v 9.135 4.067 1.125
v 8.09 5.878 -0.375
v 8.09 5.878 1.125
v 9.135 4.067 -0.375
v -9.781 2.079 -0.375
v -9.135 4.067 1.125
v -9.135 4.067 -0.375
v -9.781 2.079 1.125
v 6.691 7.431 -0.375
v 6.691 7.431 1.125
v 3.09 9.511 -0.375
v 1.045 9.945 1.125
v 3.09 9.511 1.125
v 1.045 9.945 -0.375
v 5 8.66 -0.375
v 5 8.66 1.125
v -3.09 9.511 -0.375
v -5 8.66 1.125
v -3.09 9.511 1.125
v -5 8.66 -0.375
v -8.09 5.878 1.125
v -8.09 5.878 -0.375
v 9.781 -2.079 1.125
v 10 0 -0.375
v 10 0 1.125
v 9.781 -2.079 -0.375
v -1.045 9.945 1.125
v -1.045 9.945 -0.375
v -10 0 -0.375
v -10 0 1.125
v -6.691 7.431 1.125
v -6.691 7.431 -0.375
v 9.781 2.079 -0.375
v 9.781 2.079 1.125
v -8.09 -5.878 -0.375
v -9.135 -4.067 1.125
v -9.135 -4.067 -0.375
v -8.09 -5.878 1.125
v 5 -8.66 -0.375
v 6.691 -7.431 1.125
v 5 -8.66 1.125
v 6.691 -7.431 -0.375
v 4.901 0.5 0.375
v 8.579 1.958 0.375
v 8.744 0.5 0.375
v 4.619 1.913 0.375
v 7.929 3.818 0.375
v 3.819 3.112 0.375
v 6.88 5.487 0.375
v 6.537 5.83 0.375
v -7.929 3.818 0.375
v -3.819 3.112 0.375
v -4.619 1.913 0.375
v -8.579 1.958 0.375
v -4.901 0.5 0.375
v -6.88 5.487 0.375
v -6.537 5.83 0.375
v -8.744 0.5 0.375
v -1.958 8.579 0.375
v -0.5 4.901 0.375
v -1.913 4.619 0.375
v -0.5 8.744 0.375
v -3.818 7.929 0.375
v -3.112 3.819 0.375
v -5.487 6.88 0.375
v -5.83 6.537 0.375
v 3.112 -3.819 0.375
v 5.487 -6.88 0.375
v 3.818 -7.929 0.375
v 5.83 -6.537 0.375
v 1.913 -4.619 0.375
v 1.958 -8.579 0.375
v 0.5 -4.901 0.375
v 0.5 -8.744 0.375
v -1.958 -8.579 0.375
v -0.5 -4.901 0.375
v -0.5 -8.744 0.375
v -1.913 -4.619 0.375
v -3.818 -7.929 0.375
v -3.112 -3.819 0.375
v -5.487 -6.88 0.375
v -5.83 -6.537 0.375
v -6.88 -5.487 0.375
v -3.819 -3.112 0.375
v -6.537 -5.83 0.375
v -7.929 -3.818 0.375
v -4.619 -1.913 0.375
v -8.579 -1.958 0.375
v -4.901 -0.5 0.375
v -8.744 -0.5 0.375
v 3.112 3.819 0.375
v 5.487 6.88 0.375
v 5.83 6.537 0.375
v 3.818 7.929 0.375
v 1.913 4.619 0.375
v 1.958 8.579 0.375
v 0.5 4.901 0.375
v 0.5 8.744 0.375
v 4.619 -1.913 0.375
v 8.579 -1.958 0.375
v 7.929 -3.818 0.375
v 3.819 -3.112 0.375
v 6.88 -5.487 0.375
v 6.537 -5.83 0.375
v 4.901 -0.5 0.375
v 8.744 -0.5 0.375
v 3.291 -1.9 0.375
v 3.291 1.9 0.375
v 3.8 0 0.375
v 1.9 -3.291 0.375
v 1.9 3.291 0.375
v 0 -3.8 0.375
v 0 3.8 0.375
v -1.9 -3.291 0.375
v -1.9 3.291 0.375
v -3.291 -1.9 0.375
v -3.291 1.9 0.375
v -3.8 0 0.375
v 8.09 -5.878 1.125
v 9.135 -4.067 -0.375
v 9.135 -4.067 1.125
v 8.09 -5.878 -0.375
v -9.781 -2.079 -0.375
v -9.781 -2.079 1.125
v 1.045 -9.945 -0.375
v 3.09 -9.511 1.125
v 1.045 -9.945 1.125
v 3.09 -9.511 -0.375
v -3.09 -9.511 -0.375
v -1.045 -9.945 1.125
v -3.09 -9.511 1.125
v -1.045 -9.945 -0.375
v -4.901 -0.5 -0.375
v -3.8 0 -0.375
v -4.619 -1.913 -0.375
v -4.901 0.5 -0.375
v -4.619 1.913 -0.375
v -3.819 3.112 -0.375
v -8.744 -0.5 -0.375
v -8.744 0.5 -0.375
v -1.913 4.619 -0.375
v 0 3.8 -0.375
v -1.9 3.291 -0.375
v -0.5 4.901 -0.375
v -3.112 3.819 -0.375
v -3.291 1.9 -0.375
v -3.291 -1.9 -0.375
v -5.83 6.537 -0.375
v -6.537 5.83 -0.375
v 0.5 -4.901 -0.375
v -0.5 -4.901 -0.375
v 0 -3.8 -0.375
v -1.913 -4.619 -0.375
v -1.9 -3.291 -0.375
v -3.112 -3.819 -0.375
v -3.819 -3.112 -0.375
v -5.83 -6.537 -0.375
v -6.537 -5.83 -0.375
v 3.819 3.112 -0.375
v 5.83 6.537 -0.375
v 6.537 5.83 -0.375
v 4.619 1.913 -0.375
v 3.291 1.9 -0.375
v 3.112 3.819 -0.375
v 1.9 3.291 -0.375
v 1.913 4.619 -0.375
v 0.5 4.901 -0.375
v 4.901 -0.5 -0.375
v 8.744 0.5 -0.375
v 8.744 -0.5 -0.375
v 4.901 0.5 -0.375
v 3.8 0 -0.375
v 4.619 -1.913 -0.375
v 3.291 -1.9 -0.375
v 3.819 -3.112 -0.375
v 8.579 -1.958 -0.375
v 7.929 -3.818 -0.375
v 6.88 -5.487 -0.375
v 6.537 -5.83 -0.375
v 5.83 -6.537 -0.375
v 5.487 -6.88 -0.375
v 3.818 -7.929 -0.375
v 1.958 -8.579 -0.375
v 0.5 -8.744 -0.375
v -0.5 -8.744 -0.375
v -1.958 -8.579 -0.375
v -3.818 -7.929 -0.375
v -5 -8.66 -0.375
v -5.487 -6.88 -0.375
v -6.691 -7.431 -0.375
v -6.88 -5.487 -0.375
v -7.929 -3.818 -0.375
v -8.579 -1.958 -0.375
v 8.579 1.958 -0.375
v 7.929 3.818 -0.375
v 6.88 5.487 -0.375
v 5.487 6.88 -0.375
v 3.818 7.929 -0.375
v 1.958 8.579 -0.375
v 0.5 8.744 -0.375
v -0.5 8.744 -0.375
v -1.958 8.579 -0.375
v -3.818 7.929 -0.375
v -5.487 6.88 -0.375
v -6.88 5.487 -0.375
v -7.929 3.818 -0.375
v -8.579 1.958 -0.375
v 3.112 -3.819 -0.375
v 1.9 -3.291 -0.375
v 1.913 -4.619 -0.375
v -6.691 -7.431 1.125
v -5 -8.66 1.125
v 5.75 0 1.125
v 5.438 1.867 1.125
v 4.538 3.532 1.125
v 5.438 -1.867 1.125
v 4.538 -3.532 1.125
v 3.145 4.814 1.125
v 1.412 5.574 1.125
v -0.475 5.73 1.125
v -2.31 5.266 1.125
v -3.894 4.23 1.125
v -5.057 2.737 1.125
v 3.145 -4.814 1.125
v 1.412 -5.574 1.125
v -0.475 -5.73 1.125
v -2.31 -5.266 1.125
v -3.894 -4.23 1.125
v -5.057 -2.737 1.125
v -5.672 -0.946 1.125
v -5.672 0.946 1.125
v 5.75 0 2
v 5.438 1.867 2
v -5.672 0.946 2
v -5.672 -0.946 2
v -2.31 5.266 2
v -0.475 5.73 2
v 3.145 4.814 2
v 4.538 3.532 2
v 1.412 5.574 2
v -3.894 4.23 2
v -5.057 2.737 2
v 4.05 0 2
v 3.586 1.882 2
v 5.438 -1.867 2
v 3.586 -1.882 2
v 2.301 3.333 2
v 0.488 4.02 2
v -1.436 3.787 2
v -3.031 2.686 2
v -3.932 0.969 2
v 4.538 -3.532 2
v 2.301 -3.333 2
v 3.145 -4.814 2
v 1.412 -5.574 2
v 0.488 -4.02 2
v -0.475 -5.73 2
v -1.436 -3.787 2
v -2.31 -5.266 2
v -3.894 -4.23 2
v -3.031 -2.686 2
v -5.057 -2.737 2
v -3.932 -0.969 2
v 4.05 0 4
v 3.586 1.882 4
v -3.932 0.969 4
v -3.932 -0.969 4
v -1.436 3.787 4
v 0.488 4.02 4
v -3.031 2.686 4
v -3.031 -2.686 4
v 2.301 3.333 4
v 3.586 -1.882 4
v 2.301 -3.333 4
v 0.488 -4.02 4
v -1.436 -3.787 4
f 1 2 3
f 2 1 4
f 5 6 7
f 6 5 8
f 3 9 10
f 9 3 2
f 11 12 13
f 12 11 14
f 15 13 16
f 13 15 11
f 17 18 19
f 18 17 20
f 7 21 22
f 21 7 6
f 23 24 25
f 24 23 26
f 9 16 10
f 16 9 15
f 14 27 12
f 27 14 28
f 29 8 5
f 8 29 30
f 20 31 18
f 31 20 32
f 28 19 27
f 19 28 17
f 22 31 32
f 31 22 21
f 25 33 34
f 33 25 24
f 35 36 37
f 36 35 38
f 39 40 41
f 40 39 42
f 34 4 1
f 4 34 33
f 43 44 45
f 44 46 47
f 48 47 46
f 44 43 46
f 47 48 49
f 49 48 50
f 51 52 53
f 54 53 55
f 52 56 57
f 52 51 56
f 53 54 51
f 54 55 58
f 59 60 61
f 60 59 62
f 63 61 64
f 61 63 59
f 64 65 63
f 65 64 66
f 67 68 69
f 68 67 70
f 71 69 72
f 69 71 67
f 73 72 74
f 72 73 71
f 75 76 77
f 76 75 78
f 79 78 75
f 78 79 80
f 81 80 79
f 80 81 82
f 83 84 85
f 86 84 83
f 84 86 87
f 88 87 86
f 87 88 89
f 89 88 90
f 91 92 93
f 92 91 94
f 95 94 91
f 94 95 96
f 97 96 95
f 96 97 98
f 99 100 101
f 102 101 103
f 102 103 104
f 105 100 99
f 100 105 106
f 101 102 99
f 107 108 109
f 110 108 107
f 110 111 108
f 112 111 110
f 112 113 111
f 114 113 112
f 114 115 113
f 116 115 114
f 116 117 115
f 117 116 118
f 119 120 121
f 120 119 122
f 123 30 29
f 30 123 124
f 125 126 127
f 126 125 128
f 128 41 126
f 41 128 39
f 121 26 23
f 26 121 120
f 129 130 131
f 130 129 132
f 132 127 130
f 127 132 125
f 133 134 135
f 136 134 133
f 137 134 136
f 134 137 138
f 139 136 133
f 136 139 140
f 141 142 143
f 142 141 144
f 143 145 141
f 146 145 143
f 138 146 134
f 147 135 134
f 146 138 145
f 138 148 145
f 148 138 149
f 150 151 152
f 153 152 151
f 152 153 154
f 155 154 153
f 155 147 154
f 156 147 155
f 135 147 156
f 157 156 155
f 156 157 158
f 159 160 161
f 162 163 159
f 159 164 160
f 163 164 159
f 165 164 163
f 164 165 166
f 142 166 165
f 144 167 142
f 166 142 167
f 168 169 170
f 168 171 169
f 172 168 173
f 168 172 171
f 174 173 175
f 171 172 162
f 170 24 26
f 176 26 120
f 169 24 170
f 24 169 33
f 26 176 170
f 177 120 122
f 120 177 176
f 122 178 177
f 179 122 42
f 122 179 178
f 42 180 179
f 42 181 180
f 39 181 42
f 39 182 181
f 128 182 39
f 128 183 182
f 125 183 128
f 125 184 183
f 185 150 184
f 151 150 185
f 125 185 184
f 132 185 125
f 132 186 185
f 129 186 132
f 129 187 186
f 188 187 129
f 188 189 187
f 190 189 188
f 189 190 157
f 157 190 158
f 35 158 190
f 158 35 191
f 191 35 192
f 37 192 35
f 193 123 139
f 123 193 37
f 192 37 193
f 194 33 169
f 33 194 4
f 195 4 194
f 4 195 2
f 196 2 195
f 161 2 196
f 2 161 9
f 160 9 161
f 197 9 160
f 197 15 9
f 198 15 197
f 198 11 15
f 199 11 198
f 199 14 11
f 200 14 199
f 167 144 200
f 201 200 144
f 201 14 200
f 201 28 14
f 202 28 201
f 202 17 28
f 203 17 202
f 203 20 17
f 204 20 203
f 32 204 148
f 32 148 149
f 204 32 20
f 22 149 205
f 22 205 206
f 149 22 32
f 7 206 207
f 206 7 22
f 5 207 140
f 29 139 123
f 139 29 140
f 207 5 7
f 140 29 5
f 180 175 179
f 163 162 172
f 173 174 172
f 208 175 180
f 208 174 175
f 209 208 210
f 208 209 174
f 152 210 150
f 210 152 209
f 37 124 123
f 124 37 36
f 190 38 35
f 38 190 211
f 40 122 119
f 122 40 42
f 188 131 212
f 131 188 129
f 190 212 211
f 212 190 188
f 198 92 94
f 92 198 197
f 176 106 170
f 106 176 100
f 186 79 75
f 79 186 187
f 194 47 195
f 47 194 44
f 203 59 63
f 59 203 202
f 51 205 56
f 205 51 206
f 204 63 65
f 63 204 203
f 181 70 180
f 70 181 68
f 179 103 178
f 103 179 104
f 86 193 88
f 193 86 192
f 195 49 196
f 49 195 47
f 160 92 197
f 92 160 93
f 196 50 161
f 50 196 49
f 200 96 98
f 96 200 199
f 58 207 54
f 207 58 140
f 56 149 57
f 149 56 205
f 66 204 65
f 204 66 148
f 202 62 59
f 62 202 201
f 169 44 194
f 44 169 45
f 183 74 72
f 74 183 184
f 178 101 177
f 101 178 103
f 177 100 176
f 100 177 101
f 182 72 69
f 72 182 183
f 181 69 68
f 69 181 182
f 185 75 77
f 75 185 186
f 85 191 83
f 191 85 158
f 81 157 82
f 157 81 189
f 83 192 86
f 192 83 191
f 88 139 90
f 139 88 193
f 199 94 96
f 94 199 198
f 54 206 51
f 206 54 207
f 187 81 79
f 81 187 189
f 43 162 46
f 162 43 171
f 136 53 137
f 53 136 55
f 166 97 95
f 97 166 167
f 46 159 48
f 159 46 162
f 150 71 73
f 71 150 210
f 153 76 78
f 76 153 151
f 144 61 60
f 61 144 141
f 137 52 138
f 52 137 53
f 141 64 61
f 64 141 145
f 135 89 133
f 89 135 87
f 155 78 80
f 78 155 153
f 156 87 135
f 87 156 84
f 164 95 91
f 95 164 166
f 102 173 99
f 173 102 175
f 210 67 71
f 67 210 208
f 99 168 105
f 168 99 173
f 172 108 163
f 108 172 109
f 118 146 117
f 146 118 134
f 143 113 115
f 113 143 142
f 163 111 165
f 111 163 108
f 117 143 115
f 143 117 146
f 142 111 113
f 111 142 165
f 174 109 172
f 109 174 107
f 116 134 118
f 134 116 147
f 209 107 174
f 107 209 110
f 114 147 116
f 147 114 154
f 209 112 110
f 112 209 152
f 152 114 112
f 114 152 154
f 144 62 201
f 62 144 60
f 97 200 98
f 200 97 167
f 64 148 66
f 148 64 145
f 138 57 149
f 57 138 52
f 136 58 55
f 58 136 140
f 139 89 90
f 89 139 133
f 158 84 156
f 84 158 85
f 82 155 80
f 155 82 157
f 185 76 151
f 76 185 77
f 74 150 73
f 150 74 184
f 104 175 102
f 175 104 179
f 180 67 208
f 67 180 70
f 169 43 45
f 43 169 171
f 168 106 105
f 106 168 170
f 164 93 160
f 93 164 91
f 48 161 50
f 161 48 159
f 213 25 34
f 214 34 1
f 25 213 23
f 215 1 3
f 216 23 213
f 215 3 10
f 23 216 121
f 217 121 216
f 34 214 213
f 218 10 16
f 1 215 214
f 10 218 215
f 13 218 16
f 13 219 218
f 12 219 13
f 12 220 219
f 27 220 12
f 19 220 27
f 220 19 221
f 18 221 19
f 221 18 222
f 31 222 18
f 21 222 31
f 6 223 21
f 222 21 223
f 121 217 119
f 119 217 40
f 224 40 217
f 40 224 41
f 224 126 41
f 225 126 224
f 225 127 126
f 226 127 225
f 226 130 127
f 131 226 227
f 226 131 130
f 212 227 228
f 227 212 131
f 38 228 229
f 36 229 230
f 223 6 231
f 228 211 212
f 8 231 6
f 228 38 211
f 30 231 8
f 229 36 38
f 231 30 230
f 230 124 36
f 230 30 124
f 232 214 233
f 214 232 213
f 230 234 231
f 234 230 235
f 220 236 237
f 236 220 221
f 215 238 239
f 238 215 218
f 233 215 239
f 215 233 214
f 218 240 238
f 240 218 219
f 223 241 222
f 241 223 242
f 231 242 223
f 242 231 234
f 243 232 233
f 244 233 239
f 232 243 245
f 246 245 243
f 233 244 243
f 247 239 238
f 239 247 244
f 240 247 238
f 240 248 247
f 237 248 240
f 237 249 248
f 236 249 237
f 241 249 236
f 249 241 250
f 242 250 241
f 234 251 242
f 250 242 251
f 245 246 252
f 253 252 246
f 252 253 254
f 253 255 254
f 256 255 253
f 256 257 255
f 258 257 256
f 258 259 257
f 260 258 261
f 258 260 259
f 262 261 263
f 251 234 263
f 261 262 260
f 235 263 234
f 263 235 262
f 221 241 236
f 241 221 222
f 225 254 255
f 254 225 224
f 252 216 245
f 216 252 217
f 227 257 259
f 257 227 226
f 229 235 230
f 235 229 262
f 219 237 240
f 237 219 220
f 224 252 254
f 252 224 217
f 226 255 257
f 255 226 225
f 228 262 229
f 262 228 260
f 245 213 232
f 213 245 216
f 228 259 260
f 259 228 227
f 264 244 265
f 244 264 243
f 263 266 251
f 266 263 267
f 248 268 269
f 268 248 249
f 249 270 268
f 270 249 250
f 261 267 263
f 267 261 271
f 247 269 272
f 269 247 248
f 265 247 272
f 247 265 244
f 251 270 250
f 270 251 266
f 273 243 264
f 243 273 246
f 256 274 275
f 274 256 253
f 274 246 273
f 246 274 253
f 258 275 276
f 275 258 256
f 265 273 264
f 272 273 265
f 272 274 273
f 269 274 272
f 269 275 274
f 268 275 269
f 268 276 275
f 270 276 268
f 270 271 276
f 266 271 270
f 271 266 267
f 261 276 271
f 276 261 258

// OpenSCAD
union() {
    difference() {
        cylinder(h=.75, r=10, center=true);
        translate([0, 0, -.1])
            cylinder(h=1, r=8.8, center=true);
    }
    difference() {
        cylinder(h=.75, r=5, center=true);
        translate([0, 0, -.1])
            cylinder(h=1, r=3.8, center=true);
    }
    for (i = [0:7]) {
        rotate([0, 0, i*45])
        translate([0, 7, 0])
            cube([1, 5.5, 0.75], center=true);
    }
    translate([0, 0, .75])
        cylinder(h=.75, r=10, center=true);
    translate([0, 0, 1.5])
        cylinder(h=1, r=5.75, center=true);
    translate([0, 0, 2.5])
        cylinder(h=3, r=4.05, center=true);
}
